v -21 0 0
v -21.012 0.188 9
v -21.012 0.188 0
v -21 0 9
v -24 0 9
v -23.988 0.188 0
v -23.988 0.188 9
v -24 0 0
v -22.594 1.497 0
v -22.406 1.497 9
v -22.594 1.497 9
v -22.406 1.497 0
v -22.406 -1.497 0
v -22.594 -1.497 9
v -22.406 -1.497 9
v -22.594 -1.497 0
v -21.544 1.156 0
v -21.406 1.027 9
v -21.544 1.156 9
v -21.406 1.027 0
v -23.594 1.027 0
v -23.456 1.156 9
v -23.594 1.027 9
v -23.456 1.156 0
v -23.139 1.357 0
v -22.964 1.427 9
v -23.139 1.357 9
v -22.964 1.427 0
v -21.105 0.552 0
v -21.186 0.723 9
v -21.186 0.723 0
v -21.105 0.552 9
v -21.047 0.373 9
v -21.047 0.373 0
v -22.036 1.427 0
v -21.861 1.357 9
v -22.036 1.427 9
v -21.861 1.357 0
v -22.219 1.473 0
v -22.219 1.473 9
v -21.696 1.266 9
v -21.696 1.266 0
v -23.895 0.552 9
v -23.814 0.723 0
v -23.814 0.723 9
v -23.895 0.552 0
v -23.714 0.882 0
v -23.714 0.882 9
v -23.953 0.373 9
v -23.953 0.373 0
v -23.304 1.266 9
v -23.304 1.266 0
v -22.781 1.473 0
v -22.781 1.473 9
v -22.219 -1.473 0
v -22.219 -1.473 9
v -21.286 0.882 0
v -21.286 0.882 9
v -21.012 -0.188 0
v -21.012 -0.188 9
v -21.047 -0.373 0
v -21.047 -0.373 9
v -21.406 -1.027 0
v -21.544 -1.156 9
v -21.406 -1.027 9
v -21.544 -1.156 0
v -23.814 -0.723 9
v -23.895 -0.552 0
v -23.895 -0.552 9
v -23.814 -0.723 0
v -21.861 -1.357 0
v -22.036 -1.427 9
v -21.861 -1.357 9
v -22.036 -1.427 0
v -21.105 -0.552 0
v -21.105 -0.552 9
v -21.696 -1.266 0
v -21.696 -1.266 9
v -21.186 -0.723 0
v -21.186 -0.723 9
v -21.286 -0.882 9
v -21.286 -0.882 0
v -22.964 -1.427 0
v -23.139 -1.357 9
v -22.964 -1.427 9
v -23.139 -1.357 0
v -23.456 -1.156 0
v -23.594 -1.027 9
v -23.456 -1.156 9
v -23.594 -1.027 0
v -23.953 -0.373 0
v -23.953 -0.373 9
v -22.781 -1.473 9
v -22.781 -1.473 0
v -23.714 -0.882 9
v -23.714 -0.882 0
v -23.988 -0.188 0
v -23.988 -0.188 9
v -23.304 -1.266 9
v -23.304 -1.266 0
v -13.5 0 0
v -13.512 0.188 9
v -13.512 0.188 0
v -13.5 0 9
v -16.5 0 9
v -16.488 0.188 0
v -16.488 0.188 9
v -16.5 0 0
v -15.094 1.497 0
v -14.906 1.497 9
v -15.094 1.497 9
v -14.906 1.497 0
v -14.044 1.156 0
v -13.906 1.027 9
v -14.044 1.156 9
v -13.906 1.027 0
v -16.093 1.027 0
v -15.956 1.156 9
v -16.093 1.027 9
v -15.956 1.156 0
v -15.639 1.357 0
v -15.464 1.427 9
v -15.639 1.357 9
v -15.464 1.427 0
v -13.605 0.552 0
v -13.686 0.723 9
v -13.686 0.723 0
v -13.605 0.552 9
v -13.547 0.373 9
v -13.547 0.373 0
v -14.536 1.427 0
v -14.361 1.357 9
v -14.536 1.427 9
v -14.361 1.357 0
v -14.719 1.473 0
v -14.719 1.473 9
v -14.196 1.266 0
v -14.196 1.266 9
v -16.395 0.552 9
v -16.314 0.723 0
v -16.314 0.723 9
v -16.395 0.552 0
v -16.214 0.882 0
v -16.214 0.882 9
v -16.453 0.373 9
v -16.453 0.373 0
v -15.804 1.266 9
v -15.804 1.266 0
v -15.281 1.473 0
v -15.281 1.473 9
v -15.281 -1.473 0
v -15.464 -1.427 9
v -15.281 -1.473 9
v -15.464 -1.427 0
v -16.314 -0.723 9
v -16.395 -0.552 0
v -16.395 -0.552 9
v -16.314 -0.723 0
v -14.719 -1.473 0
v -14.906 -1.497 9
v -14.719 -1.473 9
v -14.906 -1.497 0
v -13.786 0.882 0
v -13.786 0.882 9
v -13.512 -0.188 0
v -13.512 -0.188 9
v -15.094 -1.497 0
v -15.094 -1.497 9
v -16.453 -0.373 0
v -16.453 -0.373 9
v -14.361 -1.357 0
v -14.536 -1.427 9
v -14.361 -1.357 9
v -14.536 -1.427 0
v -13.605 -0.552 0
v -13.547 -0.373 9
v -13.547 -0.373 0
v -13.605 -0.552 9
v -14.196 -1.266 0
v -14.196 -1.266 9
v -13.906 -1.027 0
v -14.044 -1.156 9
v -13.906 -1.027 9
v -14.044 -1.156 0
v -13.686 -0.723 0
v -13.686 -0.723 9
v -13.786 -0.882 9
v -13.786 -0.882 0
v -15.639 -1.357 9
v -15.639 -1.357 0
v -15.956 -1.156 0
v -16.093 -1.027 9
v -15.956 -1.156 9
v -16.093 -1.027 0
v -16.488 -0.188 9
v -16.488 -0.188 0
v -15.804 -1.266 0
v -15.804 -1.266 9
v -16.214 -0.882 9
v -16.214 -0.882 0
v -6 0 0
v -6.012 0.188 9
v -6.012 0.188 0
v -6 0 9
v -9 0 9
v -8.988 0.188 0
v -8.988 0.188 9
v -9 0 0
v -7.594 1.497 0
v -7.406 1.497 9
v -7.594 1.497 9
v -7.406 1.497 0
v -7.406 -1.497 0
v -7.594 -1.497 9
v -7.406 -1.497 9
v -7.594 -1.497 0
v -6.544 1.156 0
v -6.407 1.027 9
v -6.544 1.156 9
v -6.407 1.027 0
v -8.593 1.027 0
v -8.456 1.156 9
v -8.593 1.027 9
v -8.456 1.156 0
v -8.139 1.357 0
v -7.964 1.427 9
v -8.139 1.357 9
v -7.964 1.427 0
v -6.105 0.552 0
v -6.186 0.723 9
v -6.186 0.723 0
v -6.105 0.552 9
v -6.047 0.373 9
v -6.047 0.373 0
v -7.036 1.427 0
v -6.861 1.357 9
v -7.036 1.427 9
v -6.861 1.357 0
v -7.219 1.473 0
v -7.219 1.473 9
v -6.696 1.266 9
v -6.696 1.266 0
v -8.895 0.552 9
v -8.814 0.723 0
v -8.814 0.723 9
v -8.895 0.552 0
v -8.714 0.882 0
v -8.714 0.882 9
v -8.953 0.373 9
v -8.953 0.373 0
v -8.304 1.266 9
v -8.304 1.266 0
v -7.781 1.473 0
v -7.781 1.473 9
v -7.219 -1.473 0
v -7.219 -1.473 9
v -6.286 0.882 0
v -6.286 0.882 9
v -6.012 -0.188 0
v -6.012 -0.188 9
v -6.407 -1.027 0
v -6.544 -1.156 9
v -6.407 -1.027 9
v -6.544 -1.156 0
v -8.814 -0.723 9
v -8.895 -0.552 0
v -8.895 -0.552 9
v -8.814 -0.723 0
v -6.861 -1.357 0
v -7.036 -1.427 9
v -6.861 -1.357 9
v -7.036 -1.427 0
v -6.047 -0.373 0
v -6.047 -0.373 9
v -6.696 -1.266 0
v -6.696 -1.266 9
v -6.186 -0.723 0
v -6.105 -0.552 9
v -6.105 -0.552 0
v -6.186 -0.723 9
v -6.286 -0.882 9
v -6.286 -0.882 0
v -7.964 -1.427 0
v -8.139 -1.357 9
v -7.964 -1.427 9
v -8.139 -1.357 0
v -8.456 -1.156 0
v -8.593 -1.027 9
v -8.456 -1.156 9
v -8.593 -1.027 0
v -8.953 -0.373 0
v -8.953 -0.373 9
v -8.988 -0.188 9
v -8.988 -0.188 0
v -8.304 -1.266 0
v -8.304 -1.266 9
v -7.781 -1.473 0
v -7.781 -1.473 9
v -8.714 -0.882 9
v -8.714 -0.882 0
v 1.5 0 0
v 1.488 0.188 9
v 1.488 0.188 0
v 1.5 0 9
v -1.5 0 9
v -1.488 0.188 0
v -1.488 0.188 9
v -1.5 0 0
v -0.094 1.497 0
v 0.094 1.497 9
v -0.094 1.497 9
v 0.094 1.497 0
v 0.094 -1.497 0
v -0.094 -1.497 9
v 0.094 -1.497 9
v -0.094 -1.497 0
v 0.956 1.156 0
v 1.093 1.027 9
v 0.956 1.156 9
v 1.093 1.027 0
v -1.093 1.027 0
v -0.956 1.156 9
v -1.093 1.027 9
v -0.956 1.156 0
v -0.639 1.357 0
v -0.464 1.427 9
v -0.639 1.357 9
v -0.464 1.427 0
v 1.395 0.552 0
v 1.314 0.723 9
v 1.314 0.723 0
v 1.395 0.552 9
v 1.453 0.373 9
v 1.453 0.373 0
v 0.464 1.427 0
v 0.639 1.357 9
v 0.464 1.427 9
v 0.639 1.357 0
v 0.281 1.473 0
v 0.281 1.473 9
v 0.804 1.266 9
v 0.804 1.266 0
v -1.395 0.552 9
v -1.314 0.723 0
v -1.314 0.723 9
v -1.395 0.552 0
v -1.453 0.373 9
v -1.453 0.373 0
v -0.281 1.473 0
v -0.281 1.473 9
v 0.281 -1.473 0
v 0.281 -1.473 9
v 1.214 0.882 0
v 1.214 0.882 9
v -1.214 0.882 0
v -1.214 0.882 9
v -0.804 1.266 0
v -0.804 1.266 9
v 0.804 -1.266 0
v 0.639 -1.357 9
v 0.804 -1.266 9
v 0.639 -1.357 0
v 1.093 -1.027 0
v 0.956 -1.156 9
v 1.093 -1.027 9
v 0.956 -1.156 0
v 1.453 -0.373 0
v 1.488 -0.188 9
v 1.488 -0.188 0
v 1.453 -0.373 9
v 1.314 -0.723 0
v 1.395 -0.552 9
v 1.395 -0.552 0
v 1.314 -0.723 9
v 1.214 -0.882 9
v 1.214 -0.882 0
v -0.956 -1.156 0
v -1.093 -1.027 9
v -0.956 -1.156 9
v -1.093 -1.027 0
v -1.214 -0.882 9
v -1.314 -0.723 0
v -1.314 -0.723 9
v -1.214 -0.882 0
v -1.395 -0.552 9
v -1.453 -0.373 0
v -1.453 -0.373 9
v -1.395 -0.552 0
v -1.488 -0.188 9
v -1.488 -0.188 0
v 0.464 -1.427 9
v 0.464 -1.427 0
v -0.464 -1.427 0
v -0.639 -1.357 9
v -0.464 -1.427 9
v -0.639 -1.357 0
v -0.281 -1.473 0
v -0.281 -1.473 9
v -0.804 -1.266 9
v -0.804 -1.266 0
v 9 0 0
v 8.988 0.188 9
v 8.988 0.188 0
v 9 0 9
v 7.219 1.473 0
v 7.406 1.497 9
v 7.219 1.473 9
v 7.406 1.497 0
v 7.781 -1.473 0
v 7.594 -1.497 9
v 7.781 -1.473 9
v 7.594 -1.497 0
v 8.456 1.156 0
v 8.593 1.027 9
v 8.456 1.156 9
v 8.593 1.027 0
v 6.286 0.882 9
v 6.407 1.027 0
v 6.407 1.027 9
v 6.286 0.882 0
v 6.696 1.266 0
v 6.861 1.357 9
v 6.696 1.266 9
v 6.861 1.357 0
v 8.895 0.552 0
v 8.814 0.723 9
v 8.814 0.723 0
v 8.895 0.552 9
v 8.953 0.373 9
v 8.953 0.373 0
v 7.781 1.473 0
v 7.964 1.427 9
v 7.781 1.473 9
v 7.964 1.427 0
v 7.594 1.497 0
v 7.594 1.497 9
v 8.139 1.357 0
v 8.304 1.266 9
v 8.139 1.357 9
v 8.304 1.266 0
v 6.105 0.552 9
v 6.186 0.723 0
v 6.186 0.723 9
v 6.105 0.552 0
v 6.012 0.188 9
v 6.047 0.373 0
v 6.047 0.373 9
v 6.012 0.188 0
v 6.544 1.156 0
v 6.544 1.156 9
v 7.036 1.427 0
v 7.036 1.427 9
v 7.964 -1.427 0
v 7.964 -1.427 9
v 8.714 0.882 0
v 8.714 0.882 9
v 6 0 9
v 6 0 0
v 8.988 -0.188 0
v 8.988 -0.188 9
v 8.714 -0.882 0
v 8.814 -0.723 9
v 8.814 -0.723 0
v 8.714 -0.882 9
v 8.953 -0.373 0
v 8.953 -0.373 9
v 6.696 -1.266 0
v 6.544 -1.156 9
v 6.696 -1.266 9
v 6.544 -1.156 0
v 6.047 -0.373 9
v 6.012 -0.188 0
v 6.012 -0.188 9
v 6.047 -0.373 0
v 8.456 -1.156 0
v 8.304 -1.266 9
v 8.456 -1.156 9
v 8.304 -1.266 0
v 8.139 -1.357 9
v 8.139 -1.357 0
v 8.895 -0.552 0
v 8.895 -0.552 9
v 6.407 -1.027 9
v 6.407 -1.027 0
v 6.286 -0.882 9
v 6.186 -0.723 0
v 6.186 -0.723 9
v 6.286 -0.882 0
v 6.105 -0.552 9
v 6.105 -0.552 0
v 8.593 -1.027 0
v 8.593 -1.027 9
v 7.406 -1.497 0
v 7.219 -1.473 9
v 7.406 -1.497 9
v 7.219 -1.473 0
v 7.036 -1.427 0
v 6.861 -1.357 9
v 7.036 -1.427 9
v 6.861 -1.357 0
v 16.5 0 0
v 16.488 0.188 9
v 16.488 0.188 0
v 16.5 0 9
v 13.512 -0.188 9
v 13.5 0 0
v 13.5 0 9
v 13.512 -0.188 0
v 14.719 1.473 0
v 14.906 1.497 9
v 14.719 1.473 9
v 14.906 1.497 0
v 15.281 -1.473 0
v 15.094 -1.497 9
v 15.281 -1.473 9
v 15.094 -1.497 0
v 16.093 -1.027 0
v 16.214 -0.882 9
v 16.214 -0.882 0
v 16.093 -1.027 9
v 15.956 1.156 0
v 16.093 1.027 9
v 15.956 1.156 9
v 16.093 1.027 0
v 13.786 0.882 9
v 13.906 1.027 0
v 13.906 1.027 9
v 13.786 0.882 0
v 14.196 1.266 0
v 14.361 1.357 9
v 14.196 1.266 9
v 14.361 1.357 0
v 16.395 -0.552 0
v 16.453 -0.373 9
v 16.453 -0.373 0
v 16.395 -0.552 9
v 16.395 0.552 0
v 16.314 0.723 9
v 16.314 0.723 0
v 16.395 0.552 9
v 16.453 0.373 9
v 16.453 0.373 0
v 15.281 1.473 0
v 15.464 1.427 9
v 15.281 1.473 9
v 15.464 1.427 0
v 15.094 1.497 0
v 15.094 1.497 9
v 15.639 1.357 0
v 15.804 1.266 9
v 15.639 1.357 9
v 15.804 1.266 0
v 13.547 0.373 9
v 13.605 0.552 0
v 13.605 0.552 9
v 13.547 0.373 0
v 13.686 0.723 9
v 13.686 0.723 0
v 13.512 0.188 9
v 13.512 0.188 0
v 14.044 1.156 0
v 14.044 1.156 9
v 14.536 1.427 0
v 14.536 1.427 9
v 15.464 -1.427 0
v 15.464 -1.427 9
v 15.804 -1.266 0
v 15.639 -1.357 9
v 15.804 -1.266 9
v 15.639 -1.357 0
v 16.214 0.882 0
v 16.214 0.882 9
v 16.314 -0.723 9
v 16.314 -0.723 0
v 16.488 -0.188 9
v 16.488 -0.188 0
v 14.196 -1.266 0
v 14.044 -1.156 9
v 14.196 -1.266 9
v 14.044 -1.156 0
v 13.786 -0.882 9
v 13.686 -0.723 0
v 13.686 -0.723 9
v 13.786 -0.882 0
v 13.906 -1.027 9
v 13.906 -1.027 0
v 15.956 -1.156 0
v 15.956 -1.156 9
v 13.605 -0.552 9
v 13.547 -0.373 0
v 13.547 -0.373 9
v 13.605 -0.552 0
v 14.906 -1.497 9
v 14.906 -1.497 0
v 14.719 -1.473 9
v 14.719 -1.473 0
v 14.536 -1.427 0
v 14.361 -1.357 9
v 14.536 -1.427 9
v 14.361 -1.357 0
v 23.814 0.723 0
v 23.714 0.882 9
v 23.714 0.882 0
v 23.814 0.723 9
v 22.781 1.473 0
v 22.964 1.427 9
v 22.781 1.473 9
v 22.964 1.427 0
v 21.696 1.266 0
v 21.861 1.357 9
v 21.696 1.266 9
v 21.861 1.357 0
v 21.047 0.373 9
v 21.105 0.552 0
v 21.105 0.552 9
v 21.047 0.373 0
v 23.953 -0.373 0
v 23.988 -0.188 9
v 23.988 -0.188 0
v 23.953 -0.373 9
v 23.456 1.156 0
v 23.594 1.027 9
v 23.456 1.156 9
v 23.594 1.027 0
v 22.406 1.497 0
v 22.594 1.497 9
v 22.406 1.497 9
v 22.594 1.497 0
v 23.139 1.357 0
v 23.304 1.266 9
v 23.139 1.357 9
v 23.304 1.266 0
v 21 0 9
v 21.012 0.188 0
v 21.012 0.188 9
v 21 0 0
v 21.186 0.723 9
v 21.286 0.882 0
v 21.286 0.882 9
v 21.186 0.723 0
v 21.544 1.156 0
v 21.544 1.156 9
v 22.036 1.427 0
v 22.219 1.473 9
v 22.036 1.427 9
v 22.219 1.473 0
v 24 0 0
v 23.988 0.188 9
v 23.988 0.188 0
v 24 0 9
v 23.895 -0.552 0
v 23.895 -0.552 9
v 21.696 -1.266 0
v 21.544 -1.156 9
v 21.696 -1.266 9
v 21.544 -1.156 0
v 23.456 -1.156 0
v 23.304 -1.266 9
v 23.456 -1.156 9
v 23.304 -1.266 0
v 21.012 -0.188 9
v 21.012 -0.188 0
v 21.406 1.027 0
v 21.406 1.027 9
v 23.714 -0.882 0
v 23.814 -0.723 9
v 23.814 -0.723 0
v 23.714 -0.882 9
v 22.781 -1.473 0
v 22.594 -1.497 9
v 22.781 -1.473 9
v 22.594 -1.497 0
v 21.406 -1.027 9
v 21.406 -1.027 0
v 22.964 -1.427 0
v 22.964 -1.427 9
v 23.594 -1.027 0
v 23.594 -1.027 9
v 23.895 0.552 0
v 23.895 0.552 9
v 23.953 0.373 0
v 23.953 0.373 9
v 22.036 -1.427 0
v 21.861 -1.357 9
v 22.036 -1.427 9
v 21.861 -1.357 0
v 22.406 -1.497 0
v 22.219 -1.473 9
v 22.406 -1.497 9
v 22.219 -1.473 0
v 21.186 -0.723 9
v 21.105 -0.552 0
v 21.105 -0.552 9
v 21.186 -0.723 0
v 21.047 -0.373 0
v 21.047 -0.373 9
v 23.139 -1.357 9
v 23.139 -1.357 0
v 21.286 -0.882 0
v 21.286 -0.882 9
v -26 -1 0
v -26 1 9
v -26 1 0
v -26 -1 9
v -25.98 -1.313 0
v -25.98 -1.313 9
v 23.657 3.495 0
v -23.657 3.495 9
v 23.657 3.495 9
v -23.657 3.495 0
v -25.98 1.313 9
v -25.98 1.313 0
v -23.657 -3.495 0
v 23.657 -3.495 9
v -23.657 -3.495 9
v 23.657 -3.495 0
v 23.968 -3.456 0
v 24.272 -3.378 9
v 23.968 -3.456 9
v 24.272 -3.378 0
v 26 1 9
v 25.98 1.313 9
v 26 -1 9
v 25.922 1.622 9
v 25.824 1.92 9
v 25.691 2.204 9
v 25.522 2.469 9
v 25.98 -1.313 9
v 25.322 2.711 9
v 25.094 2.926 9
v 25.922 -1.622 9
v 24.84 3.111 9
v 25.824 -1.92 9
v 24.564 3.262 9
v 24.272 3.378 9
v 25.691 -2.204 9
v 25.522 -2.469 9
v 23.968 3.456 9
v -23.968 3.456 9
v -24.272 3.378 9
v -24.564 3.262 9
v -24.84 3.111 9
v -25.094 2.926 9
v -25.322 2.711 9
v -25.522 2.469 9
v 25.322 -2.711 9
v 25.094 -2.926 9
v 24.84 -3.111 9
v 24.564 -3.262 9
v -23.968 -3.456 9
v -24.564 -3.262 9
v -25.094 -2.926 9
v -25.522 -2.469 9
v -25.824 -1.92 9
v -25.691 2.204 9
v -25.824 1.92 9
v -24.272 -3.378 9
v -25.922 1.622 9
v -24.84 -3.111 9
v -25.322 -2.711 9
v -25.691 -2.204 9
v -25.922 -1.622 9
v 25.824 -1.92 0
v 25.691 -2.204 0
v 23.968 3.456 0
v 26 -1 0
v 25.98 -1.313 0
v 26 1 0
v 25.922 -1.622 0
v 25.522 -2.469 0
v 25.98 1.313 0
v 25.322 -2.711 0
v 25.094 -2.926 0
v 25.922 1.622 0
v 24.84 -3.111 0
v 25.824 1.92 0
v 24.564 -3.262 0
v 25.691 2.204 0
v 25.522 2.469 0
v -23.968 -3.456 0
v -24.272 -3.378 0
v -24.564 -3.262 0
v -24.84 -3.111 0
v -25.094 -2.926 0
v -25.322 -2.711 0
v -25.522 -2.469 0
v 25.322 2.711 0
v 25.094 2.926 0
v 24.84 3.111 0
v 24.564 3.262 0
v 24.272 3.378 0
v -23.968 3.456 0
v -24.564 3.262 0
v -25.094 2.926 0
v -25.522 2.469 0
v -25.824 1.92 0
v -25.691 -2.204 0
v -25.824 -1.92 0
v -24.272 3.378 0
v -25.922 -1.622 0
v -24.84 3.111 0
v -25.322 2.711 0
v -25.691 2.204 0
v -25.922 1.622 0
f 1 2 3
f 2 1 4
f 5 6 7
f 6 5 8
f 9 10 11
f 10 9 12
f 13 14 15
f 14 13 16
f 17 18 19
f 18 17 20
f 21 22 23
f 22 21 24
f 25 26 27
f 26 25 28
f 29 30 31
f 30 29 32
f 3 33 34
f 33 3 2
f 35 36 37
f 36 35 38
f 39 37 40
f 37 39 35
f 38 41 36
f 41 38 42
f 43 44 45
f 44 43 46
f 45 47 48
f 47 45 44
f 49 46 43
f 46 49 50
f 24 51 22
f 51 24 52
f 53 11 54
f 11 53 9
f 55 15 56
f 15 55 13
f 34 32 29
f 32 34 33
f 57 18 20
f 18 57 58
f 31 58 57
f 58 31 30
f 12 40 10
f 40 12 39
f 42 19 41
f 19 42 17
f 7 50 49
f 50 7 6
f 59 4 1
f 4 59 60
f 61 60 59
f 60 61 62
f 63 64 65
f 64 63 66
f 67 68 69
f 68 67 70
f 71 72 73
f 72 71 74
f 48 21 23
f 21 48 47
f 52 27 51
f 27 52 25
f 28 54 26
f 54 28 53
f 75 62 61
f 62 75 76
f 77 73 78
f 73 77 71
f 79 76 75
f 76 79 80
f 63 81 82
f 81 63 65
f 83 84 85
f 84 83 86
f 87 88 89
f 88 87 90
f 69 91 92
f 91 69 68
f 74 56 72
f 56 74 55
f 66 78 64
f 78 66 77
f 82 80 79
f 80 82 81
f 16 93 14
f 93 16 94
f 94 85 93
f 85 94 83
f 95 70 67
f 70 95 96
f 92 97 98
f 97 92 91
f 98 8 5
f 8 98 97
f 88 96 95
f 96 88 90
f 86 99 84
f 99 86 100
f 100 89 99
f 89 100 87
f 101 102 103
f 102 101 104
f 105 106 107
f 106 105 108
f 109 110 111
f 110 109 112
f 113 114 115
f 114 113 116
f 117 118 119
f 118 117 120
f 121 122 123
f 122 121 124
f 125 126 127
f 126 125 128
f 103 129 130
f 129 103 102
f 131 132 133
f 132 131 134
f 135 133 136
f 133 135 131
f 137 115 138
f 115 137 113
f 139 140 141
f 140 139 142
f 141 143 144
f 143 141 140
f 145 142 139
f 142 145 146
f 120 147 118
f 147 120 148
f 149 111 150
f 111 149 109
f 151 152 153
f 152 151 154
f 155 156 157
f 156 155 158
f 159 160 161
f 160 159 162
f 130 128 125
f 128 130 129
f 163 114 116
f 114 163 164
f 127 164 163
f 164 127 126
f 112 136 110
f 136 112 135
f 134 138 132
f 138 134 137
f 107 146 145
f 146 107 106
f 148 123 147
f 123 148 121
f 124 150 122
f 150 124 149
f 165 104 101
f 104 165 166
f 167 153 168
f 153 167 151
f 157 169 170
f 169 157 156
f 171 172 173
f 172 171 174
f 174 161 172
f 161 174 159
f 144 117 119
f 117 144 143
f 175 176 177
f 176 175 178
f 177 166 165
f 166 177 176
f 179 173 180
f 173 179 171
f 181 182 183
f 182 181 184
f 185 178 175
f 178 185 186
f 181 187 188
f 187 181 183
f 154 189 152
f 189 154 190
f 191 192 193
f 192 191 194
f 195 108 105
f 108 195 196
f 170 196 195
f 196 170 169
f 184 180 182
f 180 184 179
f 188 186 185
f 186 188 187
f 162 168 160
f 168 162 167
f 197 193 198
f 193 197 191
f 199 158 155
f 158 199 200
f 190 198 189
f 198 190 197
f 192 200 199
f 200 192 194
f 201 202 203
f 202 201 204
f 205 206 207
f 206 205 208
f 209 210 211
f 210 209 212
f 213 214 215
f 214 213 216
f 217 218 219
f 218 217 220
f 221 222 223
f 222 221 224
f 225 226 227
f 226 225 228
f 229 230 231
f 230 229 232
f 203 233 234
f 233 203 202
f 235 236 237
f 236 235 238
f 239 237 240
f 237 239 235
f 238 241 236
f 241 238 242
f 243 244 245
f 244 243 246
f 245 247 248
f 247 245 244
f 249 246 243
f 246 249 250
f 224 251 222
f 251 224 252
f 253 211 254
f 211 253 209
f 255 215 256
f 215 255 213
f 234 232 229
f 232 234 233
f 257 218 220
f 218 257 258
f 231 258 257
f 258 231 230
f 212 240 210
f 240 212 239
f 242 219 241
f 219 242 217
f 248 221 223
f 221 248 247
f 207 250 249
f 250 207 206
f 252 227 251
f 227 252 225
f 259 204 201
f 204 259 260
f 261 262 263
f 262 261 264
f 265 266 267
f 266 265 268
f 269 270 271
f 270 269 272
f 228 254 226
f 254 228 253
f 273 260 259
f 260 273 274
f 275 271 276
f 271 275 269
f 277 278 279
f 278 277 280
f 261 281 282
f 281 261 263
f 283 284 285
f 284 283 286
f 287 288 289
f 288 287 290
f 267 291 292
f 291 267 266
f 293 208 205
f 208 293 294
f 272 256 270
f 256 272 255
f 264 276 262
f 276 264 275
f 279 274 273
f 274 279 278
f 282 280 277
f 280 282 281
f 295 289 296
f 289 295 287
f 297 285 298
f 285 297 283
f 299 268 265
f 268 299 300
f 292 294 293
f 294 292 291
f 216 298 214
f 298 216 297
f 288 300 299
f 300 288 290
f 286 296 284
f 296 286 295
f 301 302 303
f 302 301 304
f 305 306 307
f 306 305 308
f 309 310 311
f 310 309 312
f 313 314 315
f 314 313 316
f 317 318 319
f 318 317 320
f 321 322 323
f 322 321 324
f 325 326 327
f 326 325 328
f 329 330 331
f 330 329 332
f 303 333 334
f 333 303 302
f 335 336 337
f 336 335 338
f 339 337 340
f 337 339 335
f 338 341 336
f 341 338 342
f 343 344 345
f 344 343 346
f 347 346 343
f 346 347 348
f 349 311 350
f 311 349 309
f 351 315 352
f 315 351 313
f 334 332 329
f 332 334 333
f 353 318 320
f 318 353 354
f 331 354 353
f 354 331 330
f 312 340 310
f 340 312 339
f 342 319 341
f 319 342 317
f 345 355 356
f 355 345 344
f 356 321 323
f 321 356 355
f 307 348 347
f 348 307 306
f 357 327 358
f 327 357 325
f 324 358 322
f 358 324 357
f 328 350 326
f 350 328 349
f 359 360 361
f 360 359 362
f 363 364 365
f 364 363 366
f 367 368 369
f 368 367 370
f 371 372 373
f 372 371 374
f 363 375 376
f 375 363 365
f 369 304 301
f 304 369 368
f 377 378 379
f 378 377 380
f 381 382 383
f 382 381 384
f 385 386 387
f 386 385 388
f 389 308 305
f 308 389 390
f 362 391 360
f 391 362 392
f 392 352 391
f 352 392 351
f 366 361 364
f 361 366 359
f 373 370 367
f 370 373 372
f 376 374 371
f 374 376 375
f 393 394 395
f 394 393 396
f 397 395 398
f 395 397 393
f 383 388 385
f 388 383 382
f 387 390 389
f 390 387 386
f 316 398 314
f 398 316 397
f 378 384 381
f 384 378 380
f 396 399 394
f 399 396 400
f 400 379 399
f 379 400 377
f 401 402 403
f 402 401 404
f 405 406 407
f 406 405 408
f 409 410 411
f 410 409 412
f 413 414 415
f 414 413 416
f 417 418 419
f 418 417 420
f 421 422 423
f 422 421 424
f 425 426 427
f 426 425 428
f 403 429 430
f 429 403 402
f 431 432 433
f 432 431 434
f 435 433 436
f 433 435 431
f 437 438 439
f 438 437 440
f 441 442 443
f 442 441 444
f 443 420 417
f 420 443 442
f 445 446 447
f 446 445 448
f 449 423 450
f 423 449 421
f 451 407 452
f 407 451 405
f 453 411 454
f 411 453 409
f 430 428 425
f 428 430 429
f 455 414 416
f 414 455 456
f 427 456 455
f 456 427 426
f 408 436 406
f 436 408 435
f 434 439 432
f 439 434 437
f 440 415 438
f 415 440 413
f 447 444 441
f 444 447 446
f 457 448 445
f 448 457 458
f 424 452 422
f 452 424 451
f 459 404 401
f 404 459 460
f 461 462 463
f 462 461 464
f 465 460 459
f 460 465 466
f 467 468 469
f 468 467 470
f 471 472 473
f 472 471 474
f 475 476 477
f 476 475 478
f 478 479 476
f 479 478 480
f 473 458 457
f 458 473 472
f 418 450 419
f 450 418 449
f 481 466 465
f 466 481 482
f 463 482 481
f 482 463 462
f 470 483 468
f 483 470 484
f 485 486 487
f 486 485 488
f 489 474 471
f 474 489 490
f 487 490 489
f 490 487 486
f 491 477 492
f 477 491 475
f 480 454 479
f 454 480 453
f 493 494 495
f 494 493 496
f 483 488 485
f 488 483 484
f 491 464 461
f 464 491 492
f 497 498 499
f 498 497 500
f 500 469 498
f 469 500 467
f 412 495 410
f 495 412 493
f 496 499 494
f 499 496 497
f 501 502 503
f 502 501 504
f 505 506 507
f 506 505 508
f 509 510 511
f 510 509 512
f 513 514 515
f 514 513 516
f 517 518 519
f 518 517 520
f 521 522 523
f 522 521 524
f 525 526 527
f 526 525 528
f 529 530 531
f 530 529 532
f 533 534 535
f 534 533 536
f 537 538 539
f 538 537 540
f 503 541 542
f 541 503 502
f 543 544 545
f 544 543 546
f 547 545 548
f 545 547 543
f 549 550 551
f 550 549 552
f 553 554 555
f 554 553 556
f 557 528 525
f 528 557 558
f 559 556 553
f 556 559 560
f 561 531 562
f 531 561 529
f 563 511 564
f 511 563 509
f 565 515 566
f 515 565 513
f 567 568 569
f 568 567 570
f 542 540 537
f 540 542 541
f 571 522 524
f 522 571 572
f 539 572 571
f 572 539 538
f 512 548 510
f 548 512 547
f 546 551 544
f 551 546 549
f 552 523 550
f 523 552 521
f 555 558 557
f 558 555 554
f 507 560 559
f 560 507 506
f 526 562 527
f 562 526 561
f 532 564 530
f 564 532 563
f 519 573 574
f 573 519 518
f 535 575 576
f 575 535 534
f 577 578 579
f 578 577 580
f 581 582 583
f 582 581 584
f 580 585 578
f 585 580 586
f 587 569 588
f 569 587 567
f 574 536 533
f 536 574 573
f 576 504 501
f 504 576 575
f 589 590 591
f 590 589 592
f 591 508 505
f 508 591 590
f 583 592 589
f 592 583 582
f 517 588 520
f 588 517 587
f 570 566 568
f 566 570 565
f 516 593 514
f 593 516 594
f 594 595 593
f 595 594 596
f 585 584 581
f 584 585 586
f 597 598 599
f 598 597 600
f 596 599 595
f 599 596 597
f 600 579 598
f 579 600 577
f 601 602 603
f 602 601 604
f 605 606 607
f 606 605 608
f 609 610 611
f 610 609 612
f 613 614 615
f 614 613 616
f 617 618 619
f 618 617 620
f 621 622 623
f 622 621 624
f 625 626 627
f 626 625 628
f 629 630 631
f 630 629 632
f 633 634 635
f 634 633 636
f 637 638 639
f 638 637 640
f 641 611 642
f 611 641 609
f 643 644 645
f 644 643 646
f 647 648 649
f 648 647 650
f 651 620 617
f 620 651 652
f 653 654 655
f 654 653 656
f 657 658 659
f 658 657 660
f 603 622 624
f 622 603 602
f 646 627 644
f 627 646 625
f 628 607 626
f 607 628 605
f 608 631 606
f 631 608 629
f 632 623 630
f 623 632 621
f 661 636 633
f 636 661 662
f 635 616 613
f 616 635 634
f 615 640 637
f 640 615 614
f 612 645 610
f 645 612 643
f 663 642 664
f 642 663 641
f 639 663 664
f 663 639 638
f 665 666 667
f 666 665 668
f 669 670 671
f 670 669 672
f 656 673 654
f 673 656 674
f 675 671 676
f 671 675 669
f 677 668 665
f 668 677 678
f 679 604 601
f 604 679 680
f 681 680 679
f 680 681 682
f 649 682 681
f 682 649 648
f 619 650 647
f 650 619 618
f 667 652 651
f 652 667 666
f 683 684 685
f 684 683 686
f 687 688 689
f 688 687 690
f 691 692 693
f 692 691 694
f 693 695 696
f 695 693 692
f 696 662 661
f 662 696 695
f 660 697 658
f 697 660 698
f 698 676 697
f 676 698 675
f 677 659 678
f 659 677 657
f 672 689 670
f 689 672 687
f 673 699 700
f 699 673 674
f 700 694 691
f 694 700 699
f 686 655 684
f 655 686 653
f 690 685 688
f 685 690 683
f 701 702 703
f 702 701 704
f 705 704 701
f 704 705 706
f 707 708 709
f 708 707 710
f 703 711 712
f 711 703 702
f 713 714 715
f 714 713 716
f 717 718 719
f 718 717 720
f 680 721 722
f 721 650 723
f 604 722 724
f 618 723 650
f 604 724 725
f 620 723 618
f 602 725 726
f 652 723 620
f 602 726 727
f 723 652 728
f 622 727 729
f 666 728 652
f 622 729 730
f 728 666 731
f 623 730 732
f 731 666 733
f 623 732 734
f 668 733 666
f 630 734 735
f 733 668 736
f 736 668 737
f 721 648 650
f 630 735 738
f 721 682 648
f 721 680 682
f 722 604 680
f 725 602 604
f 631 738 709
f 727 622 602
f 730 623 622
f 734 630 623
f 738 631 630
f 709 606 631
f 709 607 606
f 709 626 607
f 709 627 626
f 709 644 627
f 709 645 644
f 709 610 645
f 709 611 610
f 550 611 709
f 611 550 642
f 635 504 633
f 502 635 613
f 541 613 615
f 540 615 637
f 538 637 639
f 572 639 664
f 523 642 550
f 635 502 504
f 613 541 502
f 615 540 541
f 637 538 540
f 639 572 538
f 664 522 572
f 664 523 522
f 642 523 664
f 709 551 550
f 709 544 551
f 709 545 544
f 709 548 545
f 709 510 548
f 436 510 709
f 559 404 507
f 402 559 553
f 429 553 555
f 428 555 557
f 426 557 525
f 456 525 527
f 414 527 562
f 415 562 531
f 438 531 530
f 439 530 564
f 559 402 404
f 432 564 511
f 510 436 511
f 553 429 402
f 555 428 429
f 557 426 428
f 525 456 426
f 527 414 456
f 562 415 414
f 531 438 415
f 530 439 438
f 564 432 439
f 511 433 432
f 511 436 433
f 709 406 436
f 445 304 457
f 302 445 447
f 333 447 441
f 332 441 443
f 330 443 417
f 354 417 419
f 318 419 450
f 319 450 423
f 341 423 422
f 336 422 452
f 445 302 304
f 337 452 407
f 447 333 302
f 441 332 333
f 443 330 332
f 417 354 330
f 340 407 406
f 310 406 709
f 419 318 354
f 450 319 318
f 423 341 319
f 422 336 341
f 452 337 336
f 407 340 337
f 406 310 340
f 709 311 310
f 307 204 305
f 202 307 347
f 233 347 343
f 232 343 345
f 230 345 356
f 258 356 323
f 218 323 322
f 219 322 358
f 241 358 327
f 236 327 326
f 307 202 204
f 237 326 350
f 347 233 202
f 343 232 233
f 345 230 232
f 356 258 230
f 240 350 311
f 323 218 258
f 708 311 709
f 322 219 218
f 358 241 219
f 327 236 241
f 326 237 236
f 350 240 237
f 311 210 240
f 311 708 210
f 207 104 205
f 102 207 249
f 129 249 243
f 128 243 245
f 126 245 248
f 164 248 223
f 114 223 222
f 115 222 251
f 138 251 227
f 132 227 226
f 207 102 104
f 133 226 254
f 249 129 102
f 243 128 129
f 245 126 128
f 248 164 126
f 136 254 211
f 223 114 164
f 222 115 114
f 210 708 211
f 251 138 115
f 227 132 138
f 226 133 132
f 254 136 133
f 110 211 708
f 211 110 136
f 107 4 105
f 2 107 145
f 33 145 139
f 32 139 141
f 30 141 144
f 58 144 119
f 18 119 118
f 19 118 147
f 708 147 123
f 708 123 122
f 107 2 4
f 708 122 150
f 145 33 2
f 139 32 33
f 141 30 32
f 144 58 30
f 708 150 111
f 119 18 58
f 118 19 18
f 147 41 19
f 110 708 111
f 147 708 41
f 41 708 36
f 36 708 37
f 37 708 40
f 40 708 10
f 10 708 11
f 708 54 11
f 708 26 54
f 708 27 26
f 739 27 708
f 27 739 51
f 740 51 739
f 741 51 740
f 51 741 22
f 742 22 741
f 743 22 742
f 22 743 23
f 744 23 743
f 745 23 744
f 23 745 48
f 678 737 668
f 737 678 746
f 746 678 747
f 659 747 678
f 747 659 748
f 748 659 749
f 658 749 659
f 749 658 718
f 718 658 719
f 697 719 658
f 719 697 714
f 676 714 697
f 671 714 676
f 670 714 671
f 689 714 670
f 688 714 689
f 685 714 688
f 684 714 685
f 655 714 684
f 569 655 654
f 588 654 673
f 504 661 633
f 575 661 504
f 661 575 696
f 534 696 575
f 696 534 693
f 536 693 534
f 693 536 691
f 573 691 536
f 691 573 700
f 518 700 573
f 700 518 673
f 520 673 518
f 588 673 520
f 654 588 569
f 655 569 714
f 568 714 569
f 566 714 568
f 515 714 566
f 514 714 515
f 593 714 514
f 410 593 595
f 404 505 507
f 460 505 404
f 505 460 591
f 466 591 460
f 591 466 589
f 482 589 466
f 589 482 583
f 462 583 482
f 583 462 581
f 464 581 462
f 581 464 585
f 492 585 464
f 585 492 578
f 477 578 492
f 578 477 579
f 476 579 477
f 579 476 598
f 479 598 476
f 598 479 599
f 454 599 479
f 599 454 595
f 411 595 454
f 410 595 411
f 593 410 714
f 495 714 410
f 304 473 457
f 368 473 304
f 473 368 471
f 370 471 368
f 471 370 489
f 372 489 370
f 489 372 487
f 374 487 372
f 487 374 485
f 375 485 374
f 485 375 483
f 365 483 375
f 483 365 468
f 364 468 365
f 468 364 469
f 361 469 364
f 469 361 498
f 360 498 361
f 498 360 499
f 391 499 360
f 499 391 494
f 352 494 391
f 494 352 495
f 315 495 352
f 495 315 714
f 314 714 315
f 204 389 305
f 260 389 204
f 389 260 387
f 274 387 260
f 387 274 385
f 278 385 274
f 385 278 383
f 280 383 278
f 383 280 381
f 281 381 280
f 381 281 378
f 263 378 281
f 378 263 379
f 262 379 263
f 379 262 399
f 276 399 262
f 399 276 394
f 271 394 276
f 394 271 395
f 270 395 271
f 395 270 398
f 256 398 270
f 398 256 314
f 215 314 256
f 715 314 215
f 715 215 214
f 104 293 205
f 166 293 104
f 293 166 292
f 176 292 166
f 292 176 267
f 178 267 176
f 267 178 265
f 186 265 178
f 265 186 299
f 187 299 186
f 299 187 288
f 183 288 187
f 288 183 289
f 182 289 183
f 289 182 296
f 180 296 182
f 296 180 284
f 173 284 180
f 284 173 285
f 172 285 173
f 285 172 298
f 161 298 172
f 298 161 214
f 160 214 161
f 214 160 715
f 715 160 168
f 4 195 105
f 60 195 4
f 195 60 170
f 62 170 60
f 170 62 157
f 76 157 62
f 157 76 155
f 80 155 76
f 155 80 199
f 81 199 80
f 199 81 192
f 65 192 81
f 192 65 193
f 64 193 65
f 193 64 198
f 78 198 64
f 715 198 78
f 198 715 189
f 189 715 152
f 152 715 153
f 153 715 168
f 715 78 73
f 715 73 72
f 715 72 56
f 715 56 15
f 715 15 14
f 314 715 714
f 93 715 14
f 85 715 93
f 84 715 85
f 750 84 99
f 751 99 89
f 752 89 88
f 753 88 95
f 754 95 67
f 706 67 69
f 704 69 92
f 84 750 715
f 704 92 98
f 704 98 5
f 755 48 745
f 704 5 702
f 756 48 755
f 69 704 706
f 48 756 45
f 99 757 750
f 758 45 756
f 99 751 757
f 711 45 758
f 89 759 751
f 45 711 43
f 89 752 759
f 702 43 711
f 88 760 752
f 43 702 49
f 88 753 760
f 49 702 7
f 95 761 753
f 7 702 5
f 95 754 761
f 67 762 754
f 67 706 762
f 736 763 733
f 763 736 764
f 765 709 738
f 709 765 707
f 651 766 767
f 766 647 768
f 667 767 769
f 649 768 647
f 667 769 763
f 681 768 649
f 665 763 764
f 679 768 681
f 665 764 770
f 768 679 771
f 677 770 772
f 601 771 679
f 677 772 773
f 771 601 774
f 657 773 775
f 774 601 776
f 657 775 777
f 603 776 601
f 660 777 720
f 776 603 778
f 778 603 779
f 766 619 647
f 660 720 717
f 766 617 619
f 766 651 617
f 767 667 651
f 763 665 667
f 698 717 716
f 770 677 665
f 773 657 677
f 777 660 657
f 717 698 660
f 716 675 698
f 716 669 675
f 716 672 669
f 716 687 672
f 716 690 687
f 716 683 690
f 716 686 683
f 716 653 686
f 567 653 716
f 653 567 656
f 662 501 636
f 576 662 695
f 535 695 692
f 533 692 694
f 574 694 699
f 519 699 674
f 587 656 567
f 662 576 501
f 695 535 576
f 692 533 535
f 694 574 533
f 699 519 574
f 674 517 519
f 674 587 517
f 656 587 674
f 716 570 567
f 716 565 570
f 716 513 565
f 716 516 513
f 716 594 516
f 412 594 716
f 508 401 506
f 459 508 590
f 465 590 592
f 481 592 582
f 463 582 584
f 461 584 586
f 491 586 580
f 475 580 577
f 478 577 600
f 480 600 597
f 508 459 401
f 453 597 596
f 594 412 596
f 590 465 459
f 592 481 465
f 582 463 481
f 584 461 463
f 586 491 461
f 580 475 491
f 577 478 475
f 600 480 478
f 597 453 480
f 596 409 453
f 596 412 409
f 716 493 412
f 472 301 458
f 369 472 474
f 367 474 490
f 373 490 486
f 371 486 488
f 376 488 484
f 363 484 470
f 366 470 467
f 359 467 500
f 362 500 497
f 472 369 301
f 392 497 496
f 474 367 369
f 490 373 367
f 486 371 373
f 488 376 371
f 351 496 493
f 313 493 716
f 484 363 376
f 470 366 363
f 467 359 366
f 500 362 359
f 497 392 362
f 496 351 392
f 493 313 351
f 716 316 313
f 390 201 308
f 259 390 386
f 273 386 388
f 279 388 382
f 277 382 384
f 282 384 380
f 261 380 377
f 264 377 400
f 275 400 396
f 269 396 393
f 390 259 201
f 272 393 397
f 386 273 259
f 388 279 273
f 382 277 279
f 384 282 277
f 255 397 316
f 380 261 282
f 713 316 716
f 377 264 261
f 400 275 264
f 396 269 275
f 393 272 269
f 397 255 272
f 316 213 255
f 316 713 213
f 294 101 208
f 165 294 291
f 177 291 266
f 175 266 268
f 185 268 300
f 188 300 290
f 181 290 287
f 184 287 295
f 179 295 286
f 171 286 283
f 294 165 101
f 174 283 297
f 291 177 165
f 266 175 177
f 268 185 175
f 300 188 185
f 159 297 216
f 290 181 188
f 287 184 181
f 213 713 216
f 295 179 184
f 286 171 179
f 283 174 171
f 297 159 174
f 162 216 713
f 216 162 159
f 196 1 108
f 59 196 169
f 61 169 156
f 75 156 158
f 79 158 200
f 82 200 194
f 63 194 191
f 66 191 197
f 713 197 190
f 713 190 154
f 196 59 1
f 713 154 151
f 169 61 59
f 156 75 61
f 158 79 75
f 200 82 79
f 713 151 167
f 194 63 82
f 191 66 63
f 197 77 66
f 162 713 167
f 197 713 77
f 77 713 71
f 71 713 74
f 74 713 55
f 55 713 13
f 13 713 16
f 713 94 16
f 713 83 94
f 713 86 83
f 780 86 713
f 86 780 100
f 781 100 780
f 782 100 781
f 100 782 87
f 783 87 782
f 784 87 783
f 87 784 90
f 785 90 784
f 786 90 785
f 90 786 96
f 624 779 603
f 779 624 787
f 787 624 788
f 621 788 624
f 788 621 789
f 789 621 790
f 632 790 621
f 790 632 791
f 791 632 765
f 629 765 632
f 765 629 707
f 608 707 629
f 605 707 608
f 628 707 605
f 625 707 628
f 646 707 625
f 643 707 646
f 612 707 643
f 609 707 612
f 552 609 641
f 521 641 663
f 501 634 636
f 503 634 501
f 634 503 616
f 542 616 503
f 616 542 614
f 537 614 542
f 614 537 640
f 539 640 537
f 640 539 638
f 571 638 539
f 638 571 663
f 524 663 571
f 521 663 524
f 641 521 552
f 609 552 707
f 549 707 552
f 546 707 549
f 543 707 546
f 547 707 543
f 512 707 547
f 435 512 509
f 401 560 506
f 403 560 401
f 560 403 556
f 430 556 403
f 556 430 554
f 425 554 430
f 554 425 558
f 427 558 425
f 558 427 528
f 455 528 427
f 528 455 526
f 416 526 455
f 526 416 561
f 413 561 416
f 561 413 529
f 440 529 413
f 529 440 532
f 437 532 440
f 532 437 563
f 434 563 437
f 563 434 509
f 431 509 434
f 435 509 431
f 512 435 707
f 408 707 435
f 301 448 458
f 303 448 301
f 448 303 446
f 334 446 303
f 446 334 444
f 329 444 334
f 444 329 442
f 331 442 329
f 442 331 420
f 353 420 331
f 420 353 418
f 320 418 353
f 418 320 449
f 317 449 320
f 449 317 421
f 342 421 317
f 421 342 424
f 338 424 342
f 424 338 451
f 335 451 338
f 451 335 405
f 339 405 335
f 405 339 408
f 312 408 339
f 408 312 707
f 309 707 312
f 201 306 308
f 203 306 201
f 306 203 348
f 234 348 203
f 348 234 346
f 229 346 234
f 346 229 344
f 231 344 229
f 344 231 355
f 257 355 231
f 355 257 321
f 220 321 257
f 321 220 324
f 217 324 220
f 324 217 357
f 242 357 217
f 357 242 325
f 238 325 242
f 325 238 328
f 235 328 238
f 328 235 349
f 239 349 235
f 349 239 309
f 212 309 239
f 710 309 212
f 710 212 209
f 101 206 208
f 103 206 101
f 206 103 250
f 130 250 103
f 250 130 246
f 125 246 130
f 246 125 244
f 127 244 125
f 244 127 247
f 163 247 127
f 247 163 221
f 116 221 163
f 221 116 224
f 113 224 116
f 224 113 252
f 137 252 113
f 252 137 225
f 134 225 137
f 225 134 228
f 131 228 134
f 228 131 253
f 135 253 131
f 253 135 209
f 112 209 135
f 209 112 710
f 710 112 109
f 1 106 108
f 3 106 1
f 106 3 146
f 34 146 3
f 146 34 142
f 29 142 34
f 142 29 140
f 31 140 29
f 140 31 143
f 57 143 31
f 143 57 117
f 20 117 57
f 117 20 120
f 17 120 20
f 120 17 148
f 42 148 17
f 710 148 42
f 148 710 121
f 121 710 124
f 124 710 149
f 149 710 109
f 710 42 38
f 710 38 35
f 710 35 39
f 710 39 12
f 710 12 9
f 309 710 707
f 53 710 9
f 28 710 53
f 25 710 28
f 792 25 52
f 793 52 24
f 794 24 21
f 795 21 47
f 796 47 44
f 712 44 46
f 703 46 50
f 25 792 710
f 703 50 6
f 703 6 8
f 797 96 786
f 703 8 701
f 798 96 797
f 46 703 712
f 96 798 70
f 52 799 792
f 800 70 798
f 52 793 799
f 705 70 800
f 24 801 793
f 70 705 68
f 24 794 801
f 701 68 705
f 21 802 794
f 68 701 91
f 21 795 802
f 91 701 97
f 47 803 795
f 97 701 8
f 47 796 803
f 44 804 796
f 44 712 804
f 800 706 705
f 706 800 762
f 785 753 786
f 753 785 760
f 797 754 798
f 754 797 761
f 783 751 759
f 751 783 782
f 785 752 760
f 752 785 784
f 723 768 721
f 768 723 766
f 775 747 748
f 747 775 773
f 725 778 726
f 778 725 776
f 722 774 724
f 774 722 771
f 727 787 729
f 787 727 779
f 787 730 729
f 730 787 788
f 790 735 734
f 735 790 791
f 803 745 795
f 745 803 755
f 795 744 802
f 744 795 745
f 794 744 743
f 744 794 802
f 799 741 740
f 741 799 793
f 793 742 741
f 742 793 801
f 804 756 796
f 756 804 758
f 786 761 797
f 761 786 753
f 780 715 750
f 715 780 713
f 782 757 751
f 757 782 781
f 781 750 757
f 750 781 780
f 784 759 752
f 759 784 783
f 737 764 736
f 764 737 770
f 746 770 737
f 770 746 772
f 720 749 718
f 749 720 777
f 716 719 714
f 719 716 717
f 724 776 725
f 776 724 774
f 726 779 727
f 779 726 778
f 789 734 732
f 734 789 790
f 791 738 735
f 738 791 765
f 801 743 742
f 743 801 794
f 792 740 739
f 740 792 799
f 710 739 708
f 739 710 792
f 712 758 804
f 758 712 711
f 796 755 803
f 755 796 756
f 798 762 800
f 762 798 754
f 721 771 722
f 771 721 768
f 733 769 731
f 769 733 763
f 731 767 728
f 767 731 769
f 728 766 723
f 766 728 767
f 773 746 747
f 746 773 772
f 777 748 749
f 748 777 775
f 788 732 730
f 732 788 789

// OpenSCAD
$fn = 50;


difference() {
	union() {
		translate(v = [0, 0, 0]) {
			rotate(a = [0, 0, 0]) {
				hull() {
					translate(v = [-23.5000000000, 1.0000000000, 0]) {
						rotate(a = [0, 0, 0]) {
							translate(v = [0, 0, 0]) {
								rotate(a = [0, 0, 0]) {
									cylinder(h = 9, r = 2.5000000000);
								}
							}
						}
					}
					translate(v = [23.5000000000, 1.0000000000, 0]) {
						rotate(a = [0, 0, 0]) {
							translate(v = [0, 0, 0]) {
								rotate(a = [0, 0, 0]) {
									cylinder(h = 9, r = 2.5000000000);
								}
							}
						}
					}
					translate(v = [-23.5000000000, -1.0000000000, 0]) {
						rotate(a = [0, 0, 0]) {
							translate(v = [0, 0, 0]) {
								rotate(a = [0, 0, 0]) {
									cylinder(h = 9, r = 2.5000000000);
								}
							}
						}
					}
					translate(v = [23.5000000000, -1.0000000000, 0]) {
						rotate(a = [0, 0, 0]) {
							translate(v = [0, 0, 0]) {
								rotate(a = [0, 0, 0]) {
									cylinder(h = 9, r = 2.5000000000);
								}
							}
						}
					}
				}
			}
		}
	}
	union() {
		translate(v = [-22.5000000000, 0.0000000000, 0]) {
			rotate(a = [0, 0, 0]) {
				translate(v = [0, 0, -50]) {
					rotate(a = [0, 0, 0]) {
						cylinder(h = 100, r = 1.5000000000);
					}
				}
			}
		}
		translate(v = [-15.0000000000, 0.0000000000, 0]) {
			rotate(a = [0, 0, 0]) {
				translate(v = [0, 0, -50]) {
					rotate(a = [0, 0, 0]) {
						cylinder(h = 100, r = 1.5000000000);
					}
				}
			}
		}
		translate(v = [-7.5000000000, 0.0000000000, 0]) {
			rotate(a = [0, 0, 0]) {
				translate(v = [0, 0, -50]) {
					rotate(a = [0, 0, 0]) {
						cylinder(h = 100, r = 1.5000000000);
					}
				}
			}
		}
		translate(v = [0.0000000000, 0.0000000000, 0]) {
			rotate(a = [0, 0, 0]) {
				translate(v = [0, 0, -50]) {
					rotate(a = [0, 0, 0]) {
						cylinder(h = 100, r = 1.5000000000);
					}
				}
			}
		}
		translate(v = [7.5000000000, 0.0000000000, 0]) {
			rotate(a = [0, 0, 0]) {
				translate(v = [0, 0, -50]) {
					rotate(a = [0, 0, 0]) {
						cylinder(h = 100, r = 1.5000000000);
					}
				}
			}
		}
		translate(v = [15.0000000000, 0.0000000000, 0]) {
			rotate(a = [0, 0, 0]) {
				translate(v = [0, 0, -50]) {
					rotate(a = [0, 0, 0]) {
						cylinder(h = 100, r = 1.5000000000);
					}
				}
			}
		}
		translate(v = [22.5000000000, 0.0000000000, 0]) {
			rotate(a = [0, 0, 0]) {
				translate(v = [0, 0, -50]) {
					rotate(a = [0, 0, 0]) {
						cylinder(h = 100, r = 1.5000000000);
					}
				}
			}
		}
	}
}
